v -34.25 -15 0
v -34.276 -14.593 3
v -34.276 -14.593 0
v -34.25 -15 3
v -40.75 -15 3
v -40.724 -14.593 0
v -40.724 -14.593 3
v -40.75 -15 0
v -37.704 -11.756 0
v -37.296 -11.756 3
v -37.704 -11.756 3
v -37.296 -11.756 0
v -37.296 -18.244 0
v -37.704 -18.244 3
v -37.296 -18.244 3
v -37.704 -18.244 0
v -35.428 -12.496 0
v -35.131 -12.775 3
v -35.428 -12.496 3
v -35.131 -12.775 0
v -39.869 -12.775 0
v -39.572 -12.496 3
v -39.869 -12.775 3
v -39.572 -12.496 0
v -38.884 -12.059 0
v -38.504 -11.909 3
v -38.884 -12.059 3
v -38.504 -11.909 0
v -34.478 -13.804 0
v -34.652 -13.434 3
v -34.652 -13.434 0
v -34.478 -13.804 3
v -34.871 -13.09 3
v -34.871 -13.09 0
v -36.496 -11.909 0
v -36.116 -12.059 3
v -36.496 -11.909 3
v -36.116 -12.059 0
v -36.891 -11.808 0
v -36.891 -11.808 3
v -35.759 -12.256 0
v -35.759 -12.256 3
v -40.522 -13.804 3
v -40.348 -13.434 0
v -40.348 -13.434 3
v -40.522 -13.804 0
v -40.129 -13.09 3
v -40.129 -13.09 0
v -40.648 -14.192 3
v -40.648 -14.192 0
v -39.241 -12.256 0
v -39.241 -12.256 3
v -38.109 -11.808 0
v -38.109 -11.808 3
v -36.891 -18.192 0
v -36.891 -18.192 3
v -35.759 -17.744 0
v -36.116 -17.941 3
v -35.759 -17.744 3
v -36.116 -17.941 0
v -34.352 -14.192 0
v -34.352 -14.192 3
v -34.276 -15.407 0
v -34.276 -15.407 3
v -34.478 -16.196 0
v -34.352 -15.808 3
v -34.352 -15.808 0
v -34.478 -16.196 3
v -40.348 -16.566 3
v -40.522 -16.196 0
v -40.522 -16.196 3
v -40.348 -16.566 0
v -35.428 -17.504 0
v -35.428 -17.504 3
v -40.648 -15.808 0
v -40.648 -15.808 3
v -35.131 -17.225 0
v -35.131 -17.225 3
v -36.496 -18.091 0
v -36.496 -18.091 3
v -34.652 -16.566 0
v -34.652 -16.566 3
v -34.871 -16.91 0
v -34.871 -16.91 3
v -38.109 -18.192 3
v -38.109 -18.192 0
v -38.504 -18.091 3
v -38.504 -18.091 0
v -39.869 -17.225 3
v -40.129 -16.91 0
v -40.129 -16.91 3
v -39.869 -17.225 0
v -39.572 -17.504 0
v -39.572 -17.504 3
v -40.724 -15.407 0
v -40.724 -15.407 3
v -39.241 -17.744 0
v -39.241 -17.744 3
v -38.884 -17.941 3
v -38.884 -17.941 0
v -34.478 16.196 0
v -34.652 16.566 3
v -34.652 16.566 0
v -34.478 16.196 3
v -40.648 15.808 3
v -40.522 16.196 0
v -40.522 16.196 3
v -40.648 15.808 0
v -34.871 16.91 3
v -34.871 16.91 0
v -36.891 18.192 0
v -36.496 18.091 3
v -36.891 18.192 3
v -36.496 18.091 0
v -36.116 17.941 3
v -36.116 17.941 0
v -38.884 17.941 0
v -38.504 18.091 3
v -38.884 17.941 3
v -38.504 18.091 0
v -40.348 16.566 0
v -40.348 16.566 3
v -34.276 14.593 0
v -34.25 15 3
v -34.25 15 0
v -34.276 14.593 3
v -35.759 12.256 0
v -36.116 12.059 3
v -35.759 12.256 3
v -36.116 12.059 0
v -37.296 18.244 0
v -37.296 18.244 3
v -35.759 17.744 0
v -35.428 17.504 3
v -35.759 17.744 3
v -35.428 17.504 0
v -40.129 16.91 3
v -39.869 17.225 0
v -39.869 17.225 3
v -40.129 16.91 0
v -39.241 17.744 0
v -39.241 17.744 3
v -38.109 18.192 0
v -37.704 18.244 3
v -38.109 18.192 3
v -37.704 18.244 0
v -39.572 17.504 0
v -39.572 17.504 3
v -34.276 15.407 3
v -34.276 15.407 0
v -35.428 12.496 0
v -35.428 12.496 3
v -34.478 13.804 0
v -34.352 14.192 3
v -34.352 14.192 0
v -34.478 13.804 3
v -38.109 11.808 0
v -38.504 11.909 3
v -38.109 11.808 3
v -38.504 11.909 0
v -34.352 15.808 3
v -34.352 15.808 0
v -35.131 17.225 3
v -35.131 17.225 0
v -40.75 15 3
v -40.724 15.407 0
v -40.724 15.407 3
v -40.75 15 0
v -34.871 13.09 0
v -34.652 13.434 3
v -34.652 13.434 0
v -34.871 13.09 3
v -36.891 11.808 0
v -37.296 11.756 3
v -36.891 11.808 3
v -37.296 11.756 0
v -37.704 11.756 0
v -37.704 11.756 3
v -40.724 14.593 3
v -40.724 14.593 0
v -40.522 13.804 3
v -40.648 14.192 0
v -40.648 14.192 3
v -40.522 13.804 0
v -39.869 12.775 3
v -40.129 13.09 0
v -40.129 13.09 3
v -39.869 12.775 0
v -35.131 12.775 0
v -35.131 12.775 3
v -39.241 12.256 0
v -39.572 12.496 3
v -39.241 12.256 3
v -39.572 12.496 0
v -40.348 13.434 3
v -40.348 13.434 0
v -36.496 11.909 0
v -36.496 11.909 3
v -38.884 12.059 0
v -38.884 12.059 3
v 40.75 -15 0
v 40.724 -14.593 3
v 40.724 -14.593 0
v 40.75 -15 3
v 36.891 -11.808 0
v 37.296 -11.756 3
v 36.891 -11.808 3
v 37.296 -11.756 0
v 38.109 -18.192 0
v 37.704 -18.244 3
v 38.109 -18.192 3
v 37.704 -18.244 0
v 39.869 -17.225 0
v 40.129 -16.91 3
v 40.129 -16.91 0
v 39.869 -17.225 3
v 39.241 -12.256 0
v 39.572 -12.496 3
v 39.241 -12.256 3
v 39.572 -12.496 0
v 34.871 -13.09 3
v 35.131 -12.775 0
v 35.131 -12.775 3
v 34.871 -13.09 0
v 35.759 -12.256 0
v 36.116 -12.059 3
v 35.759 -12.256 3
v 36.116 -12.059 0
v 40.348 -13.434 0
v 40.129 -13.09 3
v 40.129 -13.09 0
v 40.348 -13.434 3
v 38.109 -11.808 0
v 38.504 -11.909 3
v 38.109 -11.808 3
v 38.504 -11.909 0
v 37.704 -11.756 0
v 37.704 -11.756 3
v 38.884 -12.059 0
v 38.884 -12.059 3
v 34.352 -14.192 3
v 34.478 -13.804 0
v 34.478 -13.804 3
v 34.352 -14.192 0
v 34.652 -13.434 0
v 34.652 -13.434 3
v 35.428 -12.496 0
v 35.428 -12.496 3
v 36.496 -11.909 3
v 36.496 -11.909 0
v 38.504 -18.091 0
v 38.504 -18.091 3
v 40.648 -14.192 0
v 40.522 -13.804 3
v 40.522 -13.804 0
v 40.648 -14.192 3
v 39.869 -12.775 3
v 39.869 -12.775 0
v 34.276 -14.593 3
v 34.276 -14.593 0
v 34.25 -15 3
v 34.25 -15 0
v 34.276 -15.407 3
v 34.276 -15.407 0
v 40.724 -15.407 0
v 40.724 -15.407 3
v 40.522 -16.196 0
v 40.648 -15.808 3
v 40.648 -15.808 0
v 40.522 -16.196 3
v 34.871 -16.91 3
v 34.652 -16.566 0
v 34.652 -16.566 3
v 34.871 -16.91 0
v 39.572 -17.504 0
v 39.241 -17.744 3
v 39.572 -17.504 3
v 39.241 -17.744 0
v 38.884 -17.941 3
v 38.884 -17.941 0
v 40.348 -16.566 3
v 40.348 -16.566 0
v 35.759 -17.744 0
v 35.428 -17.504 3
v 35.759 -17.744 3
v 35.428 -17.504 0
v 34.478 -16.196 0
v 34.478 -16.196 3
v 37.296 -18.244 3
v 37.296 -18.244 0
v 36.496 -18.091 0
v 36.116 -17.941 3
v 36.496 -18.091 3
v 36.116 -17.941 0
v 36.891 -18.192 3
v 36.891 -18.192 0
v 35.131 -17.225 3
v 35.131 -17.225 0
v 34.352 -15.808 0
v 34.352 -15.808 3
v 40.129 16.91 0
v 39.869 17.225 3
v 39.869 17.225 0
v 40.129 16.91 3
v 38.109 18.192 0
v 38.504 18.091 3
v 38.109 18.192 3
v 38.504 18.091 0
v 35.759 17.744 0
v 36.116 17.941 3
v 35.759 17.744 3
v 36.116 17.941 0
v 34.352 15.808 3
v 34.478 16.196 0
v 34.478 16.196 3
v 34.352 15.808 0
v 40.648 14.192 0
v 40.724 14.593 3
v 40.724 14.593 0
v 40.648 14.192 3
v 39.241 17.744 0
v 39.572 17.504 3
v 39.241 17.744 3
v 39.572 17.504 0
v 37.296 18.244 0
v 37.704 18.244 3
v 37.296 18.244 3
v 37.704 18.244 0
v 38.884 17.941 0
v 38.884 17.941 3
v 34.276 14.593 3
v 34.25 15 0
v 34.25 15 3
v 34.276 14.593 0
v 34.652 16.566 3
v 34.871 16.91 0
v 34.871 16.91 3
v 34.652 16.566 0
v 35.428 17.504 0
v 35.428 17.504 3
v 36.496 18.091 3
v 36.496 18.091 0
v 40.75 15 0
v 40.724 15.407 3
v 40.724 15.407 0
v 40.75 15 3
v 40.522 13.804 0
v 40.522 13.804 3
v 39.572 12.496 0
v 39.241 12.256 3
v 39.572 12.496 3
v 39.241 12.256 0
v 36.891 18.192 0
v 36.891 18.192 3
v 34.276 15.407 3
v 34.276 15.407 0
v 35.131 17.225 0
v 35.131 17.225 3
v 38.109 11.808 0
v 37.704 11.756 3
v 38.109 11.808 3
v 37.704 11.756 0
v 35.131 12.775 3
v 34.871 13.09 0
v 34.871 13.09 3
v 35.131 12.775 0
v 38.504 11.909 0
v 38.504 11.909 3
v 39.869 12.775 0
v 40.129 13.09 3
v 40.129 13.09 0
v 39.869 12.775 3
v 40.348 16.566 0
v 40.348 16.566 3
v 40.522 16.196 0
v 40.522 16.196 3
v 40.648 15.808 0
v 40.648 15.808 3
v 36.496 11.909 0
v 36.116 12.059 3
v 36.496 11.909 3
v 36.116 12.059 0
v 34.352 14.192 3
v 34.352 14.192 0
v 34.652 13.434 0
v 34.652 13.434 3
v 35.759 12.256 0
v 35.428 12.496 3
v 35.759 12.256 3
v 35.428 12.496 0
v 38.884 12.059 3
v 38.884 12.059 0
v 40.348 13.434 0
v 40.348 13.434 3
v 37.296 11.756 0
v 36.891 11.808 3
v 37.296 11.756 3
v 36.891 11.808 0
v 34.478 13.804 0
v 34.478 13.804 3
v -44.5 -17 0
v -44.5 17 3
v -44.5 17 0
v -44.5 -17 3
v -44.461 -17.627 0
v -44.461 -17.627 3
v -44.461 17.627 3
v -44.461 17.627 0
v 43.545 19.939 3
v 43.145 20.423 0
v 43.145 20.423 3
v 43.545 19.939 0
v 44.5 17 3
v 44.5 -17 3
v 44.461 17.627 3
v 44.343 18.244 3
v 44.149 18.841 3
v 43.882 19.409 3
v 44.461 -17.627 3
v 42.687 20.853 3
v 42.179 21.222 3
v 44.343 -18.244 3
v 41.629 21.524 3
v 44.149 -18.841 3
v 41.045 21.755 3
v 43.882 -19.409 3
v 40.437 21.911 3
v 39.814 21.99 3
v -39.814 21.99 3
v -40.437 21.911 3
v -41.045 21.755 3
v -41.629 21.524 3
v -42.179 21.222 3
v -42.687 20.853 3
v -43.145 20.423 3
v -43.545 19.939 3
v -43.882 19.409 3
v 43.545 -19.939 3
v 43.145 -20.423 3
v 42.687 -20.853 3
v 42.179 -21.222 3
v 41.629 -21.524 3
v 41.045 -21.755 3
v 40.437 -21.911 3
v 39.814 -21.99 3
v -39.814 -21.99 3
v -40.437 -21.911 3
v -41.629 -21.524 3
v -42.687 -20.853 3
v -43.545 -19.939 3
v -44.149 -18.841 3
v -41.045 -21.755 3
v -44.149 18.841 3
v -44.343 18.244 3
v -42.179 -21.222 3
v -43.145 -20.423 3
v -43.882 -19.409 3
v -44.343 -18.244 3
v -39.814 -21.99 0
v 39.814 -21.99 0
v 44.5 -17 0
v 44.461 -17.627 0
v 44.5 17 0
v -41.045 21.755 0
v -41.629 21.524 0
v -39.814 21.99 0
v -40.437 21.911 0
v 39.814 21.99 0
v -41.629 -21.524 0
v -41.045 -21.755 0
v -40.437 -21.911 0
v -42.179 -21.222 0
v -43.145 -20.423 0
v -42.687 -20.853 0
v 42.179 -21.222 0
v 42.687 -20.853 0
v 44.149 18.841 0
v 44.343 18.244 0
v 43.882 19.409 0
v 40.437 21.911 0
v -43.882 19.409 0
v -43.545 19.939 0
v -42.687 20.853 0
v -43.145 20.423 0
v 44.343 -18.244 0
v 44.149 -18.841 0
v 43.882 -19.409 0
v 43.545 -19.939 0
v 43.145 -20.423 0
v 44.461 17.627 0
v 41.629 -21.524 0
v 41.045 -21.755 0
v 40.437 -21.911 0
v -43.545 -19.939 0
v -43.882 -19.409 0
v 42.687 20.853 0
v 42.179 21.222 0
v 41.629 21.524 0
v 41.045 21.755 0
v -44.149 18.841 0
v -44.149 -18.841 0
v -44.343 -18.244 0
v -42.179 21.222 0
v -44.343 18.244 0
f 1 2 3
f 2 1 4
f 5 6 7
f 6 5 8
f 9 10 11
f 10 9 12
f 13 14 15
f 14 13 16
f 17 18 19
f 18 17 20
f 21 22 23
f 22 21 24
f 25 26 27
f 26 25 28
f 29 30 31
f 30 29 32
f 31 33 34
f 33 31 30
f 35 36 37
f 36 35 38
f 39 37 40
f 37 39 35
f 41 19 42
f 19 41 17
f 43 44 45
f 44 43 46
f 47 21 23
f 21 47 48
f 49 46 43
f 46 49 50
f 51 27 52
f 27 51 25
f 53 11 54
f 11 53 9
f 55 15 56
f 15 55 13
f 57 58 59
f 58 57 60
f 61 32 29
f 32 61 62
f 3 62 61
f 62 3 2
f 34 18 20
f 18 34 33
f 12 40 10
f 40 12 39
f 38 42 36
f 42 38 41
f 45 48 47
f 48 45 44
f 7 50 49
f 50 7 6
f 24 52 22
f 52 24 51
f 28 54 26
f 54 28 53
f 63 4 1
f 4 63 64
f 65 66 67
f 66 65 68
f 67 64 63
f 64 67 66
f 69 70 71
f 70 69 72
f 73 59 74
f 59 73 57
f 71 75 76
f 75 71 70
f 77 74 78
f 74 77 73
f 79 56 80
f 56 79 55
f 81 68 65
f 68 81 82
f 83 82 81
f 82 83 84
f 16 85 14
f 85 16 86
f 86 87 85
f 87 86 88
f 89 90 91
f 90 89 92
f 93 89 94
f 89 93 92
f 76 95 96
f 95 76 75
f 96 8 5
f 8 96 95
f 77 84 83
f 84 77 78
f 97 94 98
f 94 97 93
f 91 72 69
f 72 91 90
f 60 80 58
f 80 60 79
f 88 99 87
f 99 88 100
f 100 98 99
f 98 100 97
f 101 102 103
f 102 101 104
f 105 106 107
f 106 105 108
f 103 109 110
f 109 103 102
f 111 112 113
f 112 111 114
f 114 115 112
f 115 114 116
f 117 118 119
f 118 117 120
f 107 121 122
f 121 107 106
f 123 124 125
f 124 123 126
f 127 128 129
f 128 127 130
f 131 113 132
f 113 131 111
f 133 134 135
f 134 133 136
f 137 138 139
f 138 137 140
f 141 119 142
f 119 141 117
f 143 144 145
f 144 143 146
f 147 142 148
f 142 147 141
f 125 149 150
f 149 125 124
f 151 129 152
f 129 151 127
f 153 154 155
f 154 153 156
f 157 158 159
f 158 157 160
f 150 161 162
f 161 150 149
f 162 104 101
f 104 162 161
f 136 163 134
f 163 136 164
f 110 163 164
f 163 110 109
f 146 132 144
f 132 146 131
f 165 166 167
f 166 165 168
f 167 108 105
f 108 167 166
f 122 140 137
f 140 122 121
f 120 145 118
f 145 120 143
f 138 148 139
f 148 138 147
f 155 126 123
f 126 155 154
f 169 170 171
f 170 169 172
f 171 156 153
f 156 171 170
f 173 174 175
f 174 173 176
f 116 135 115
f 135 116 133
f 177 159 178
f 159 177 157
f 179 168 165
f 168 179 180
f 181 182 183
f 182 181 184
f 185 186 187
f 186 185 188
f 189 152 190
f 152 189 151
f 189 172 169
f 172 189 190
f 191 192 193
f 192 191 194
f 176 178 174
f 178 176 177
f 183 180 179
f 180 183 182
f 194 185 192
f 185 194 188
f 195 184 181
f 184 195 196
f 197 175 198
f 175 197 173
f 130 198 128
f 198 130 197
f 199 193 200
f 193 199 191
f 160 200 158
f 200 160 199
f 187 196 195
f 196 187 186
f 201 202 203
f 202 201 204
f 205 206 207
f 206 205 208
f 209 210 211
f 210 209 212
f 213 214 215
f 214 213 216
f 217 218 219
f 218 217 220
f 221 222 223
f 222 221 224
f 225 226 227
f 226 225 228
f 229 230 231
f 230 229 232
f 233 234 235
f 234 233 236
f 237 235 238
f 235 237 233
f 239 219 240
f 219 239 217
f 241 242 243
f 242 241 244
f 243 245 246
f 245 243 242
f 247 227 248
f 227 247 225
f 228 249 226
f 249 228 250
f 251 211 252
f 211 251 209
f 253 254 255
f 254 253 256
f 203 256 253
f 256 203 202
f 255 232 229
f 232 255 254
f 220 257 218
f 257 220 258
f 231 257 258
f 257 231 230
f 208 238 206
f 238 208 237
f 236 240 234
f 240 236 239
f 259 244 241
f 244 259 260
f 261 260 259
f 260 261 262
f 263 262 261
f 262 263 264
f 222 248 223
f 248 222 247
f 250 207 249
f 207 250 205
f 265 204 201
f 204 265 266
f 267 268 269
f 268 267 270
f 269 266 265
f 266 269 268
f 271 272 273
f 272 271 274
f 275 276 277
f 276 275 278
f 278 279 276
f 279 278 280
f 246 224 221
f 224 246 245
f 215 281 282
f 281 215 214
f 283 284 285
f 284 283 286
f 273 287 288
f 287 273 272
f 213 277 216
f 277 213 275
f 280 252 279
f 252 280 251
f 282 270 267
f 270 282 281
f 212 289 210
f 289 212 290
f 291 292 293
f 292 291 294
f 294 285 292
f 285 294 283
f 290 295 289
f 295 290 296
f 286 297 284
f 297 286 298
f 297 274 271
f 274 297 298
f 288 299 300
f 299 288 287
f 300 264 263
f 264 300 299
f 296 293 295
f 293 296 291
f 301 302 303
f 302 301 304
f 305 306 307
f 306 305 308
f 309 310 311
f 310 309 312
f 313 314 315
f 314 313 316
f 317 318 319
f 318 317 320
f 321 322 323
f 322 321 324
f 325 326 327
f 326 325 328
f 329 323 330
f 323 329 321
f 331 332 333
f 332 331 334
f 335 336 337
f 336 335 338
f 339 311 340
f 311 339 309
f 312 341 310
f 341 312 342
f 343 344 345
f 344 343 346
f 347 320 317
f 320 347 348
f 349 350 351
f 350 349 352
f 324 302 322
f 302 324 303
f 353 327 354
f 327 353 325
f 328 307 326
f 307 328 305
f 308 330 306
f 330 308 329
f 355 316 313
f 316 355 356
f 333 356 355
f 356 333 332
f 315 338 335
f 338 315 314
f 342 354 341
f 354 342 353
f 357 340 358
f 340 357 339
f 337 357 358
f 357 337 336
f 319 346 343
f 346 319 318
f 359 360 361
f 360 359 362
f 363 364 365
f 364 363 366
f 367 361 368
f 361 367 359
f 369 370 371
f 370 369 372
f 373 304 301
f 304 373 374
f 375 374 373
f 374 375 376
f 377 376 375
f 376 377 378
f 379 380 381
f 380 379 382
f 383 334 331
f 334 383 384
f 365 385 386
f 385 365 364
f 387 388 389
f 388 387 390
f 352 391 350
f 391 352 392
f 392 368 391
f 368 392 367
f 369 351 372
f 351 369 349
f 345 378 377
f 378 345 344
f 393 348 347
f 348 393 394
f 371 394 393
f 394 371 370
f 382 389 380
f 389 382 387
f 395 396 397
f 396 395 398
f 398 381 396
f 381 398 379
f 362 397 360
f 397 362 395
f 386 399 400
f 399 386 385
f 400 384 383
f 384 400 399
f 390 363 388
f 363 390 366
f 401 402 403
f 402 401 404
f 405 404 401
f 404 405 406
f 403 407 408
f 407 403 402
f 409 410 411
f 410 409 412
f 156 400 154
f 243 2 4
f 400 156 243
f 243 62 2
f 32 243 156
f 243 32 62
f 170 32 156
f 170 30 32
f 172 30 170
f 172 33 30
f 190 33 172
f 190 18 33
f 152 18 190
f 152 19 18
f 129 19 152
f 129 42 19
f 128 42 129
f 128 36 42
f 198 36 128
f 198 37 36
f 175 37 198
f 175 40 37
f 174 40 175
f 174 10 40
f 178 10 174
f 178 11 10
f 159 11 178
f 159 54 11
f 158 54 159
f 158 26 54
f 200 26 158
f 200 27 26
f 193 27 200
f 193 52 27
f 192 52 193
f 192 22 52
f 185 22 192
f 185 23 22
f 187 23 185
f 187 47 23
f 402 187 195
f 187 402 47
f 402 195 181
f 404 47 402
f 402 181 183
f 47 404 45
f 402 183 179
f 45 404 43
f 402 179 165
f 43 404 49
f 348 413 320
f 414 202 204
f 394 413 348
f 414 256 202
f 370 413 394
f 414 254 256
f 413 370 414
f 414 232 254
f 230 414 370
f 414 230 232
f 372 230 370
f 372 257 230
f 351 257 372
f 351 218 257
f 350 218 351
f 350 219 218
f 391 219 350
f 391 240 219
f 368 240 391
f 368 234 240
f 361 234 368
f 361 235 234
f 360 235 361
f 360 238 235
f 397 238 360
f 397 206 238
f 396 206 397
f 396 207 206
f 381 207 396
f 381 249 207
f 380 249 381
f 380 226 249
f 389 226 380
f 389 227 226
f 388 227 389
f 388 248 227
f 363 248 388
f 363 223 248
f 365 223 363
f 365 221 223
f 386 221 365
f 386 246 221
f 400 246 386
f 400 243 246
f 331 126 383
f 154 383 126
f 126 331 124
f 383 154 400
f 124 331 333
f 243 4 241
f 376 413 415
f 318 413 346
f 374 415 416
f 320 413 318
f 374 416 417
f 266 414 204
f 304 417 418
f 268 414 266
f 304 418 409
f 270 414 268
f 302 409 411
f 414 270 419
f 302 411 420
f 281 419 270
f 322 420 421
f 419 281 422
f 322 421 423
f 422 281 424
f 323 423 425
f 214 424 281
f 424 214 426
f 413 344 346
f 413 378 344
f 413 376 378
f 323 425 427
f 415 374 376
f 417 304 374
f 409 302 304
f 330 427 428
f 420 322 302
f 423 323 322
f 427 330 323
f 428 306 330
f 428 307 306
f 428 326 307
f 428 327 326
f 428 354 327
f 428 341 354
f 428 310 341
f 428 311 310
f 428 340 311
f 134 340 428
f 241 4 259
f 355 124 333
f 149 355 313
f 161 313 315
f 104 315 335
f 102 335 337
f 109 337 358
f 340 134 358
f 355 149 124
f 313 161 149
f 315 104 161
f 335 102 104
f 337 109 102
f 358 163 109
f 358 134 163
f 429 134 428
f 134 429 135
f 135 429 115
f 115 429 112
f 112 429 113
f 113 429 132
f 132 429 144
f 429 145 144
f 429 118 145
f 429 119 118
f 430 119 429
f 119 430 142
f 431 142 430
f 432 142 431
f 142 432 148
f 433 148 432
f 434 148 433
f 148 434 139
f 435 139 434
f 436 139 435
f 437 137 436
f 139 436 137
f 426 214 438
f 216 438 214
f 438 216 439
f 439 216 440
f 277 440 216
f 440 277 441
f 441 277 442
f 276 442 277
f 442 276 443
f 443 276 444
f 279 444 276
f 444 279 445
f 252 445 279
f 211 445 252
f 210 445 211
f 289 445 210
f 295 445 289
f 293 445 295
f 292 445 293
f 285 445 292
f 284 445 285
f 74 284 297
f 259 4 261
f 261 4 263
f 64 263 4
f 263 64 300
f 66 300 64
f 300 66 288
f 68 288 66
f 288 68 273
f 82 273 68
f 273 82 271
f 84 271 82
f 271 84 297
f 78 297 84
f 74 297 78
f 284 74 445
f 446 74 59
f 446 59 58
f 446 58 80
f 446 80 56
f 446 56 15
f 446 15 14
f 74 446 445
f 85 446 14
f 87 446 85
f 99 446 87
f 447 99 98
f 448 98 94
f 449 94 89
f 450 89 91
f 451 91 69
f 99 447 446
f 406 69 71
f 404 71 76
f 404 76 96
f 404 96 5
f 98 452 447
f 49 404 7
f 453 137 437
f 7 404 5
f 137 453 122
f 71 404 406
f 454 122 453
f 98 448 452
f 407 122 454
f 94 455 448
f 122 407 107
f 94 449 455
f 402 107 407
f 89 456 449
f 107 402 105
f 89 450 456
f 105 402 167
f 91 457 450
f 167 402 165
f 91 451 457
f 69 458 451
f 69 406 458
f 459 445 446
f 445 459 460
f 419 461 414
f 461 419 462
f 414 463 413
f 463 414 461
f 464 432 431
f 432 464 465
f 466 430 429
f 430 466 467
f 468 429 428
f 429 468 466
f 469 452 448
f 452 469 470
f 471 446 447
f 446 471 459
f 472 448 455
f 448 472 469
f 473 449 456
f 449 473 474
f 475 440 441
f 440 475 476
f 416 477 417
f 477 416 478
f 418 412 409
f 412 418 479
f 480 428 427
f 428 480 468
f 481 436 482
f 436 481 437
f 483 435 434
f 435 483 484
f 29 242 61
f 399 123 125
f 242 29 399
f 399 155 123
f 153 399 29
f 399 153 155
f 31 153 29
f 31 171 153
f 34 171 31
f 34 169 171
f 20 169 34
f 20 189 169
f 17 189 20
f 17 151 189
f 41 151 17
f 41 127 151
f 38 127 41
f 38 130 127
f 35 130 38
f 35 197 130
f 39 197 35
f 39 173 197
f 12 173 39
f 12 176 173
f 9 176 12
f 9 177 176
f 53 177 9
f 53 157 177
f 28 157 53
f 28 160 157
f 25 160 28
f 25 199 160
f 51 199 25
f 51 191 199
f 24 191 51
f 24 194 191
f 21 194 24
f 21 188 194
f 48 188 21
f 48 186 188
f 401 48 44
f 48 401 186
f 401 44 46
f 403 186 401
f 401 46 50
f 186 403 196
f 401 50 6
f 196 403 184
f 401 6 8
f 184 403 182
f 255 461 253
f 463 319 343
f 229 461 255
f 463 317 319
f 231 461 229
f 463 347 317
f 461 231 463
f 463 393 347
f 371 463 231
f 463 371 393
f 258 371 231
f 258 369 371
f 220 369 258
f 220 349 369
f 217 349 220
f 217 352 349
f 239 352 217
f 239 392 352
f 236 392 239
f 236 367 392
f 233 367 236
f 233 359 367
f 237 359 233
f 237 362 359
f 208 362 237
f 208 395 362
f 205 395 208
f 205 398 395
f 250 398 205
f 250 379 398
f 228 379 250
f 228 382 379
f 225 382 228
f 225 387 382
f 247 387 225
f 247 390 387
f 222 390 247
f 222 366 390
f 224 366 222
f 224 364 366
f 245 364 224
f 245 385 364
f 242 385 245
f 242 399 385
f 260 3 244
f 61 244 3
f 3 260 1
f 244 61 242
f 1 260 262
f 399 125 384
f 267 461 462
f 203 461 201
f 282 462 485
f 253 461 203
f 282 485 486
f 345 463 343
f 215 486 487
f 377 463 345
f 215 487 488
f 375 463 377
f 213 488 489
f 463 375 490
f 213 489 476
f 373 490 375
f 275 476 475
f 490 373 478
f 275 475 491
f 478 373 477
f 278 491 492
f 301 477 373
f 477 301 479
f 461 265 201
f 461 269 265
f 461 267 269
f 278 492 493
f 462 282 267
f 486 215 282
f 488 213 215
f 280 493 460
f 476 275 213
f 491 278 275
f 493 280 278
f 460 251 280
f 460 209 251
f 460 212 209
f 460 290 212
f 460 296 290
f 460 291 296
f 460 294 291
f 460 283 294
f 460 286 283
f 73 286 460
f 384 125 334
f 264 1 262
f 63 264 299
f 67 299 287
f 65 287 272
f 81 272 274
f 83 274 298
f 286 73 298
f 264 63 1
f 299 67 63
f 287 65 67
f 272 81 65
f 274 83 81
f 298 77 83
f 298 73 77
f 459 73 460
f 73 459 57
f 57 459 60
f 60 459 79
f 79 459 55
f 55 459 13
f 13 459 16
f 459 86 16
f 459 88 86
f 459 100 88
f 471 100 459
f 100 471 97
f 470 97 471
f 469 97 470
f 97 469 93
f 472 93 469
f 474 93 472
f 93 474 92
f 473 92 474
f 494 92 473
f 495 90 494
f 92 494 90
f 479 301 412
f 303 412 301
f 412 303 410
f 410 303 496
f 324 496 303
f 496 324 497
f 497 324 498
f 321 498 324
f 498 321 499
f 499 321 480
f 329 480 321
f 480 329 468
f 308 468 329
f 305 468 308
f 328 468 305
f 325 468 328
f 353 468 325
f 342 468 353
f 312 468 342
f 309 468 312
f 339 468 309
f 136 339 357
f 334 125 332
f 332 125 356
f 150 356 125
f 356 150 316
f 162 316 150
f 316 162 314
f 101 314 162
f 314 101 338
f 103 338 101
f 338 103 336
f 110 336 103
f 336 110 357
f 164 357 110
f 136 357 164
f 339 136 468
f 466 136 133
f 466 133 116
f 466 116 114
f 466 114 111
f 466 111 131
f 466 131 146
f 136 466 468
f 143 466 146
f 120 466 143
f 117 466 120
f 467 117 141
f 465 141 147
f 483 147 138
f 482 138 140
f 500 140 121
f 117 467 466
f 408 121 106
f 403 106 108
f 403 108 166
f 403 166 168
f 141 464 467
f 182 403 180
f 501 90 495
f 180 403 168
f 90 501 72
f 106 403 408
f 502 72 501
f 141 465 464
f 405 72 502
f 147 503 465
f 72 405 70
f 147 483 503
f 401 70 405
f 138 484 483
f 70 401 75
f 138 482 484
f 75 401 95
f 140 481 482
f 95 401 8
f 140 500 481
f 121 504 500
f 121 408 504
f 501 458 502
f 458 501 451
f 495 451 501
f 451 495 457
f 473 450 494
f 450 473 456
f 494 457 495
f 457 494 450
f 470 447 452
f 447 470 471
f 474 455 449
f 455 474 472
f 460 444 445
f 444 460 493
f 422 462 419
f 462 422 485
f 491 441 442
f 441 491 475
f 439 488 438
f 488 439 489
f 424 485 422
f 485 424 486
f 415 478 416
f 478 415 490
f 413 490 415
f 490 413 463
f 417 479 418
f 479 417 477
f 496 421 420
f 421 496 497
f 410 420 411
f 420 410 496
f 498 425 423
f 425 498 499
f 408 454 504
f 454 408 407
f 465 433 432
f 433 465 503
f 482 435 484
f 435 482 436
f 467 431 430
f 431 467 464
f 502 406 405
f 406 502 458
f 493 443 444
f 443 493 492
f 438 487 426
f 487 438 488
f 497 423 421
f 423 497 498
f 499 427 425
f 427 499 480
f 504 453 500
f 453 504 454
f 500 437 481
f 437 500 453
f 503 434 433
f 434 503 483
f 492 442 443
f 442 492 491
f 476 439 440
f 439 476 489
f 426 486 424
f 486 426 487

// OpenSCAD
$fn = 50;


difference() {
	union() {
		hull() {
			translate(v = [-39.5000000000, 17.0000000000, 0]) {
				cylinder(h = 3, r = 5);
			}
			translate(v = [39.5000000000, 17.0000000000, 0]) {
				cylinder(h = 3, r = 5);
			}
			translate(v = [-39.5000000000, -17.0000000000, 0]) {
				cylinder(h = 3, r = 5);
			}
			translate(v = [39.5000000000, -17.0000000000, 0]) {
				cylinder(h = 3, r = 5);
			}
		}
	}
	union() {
		translate(v = [-37.5000000000, -15.0000000000, -100.0000000000]) {
			cylinder(h = 200, r = 3.2500000000);
		}
		translate(v = [-37.5000000000, 15.0000000000, -100.0000000000]) {
			cylinder(h = 200, r = 3.2500000000);
		}
		translate(v = [37.5000000000, -15.0000000000, -100.0000000000]) {
			cylinder(h = 200, r = 3.2500000000);
		}
		translate(v = [37.5000000000, 15.0000000000, -100.0000000000]) {
			cylinder(h = 200, r = 3.2500000000);
		}
	}
}
